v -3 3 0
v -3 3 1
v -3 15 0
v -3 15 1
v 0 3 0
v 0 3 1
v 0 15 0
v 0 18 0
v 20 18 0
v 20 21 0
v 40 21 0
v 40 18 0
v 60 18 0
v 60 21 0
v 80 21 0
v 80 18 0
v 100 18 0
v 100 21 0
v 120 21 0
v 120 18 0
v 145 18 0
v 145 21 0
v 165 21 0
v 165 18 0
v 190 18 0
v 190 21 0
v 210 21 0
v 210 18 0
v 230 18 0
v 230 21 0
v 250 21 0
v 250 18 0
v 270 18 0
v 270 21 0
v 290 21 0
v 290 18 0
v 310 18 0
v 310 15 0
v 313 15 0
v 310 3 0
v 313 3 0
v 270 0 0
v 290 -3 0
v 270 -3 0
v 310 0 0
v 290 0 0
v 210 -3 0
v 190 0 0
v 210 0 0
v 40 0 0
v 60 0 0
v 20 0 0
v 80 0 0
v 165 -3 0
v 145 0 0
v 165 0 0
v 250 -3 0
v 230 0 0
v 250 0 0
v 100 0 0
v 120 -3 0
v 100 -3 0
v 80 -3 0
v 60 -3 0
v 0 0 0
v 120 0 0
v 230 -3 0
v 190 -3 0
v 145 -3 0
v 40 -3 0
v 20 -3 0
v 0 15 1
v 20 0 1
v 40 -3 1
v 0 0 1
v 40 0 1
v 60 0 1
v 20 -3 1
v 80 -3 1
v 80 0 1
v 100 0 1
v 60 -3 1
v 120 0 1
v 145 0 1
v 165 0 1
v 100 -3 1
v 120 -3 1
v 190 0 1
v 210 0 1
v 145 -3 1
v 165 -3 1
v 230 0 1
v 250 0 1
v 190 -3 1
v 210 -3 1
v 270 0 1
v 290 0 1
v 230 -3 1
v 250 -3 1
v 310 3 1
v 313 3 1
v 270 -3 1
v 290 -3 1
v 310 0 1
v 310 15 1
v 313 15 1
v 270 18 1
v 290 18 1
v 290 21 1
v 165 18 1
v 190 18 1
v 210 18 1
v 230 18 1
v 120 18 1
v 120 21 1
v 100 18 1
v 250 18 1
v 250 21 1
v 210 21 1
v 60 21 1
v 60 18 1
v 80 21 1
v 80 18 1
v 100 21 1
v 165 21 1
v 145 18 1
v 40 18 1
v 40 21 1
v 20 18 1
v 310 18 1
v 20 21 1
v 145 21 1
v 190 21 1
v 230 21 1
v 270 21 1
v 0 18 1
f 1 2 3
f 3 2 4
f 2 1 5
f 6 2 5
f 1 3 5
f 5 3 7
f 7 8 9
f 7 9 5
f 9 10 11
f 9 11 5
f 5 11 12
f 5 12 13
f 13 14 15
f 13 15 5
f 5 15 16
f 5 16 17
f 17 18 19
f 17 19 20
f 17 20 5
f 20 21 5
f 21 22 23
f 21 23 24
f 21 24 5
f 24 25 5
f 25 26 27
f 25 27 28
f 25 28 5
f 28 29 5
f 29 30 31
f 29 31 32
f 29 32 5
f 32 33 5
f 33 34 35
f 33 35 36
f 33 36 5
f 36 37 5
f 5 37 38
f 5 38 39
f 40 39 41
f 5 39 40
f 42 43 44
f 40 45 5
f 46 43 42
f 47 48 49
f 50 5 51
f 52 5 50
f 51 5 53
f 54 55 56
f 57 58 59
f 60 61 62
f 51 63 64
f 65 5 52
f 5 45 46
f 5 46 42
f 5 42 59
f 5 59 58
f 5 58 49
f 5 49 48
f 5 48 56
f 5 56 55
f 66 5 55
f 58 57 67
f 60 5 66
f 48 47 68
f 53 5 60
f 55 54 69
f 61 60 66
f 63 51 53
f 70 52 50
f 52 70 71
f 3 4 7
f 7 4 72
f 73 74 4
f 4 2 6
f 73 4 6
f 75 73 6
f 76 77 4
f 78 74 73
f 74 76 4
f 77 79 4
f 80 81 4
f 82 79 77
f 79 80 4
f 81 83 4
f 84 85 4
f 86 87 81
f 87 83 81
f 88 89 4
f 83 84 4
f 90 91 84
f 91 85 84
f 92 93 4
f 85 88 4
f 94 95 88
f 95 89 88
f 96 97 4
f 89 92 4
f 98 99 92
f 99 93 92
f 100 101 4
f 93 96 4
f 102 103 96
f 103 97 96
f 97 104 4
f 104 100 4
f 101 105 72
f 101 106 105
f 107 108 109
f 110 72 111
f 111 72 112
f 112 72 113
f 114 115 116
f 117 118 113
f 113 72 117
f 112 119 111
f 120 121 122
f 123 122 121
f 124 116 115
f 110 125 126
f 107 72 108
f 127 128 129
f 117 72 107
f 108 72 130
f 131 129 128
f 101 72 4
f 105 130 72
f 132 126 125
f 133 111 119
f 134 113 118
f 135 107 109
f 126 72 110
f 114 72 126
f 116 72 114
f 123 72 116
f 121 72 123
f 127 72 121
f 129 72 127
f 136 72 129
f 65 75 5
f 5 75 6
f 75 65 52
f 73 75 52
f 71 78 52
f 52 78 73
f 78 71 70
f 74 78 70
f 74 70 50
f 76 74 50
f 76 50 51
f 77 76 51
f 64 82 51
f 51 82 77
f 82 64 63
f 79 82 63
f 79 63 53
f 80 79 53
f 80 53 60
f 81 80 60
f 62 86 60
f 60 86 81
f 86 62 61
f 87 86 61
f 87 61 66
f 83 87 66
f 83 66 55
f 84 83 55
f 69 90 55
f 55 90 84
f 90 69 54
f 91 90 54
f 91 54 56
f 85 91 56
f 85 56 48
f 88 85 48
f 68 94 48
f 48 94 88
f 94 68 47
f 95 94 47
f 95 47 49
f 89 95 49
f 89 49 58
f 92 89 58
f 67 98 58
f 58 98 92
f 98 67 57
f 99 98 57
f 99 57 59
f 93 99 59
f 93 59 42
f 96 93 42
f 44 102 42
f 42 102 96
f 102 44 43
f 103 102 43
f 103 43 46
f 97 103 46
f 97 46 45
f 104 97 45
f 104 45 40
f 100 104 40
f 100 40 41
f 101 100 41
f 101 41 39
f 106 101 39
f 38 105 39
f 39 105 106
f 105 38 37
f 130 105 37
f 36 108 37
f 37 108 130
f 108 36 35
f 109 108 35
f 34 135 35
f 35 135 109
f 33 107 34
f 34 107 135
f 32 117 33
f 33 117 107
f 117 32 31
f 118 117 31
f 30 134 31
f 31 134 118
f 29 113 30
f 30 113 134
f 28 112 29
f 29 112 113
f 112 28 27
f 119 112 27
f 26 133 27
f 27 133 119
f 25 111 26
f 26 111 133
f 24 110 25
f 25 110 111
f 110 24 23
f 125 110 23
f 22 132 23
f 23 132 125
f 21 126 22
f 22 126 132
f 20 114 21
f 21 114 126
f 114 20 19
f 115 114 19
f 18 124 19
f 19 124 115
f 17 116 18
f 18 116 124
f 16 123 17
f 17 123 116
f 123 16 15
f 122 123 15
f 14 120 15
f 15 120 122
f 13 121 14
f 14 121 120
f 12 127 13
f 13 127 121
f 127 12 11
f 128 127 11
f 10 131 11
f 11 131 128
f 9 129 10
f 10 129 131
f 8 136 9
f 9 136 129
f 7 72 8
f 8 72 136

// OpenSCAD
tapwitdh = 20;
tapheight = 3;
tapwitdh2 = 12;
bot = -3;
top = 18;
module inderside()
{
		cube([310,18,1]);
			translate([60,bot,0]) cube([tapwitdh,tapheight,1]);
			translate([230,bot,0]) cube([tapwitdh,tapheight,1]);
			translate([230,bot,0]) cube([tapwitdh,tapheight,1]);
			translate([20,bot,0]) cube([tapwitdh,tapheight,1]);
			translate([270,bot,0]) cube([tapwitdh,tapheight,1]);
			translate([100,bot,0]) cube([tapwitdh,tapheight,1]);
			translate([190,bot,0]) cube([tapwitdh,tapheight,1]);
			translate([145,bot,0]) cube([tapwitdh,tapheight,1]);

			translate([20,top,0]) cube([tapwitdh,tapheight,1]);
			translate([270,top,0]) cube([tapwitdh,tapheight,1]);
			translate([60,top,0]) cube([tapwitdh,tapheight,1]);
			translate([230,top,0]) cube([tapwitdh,tapheight,1]);
			translate([100,top,0]) cube([tapwitdh,tapheight,1]);
			translate([190,top,0]) cube([tapwitdh,tapheight,1]);
			translate([145,top,0]) cube([tapwitdh,tapheight,1]);

	translate([-3,3,0])cube([tapheight,tapwitdh2,1]);

	translate([310,3,0])cube([tapheight,tapwitdh2,1]);

}
inderside();
